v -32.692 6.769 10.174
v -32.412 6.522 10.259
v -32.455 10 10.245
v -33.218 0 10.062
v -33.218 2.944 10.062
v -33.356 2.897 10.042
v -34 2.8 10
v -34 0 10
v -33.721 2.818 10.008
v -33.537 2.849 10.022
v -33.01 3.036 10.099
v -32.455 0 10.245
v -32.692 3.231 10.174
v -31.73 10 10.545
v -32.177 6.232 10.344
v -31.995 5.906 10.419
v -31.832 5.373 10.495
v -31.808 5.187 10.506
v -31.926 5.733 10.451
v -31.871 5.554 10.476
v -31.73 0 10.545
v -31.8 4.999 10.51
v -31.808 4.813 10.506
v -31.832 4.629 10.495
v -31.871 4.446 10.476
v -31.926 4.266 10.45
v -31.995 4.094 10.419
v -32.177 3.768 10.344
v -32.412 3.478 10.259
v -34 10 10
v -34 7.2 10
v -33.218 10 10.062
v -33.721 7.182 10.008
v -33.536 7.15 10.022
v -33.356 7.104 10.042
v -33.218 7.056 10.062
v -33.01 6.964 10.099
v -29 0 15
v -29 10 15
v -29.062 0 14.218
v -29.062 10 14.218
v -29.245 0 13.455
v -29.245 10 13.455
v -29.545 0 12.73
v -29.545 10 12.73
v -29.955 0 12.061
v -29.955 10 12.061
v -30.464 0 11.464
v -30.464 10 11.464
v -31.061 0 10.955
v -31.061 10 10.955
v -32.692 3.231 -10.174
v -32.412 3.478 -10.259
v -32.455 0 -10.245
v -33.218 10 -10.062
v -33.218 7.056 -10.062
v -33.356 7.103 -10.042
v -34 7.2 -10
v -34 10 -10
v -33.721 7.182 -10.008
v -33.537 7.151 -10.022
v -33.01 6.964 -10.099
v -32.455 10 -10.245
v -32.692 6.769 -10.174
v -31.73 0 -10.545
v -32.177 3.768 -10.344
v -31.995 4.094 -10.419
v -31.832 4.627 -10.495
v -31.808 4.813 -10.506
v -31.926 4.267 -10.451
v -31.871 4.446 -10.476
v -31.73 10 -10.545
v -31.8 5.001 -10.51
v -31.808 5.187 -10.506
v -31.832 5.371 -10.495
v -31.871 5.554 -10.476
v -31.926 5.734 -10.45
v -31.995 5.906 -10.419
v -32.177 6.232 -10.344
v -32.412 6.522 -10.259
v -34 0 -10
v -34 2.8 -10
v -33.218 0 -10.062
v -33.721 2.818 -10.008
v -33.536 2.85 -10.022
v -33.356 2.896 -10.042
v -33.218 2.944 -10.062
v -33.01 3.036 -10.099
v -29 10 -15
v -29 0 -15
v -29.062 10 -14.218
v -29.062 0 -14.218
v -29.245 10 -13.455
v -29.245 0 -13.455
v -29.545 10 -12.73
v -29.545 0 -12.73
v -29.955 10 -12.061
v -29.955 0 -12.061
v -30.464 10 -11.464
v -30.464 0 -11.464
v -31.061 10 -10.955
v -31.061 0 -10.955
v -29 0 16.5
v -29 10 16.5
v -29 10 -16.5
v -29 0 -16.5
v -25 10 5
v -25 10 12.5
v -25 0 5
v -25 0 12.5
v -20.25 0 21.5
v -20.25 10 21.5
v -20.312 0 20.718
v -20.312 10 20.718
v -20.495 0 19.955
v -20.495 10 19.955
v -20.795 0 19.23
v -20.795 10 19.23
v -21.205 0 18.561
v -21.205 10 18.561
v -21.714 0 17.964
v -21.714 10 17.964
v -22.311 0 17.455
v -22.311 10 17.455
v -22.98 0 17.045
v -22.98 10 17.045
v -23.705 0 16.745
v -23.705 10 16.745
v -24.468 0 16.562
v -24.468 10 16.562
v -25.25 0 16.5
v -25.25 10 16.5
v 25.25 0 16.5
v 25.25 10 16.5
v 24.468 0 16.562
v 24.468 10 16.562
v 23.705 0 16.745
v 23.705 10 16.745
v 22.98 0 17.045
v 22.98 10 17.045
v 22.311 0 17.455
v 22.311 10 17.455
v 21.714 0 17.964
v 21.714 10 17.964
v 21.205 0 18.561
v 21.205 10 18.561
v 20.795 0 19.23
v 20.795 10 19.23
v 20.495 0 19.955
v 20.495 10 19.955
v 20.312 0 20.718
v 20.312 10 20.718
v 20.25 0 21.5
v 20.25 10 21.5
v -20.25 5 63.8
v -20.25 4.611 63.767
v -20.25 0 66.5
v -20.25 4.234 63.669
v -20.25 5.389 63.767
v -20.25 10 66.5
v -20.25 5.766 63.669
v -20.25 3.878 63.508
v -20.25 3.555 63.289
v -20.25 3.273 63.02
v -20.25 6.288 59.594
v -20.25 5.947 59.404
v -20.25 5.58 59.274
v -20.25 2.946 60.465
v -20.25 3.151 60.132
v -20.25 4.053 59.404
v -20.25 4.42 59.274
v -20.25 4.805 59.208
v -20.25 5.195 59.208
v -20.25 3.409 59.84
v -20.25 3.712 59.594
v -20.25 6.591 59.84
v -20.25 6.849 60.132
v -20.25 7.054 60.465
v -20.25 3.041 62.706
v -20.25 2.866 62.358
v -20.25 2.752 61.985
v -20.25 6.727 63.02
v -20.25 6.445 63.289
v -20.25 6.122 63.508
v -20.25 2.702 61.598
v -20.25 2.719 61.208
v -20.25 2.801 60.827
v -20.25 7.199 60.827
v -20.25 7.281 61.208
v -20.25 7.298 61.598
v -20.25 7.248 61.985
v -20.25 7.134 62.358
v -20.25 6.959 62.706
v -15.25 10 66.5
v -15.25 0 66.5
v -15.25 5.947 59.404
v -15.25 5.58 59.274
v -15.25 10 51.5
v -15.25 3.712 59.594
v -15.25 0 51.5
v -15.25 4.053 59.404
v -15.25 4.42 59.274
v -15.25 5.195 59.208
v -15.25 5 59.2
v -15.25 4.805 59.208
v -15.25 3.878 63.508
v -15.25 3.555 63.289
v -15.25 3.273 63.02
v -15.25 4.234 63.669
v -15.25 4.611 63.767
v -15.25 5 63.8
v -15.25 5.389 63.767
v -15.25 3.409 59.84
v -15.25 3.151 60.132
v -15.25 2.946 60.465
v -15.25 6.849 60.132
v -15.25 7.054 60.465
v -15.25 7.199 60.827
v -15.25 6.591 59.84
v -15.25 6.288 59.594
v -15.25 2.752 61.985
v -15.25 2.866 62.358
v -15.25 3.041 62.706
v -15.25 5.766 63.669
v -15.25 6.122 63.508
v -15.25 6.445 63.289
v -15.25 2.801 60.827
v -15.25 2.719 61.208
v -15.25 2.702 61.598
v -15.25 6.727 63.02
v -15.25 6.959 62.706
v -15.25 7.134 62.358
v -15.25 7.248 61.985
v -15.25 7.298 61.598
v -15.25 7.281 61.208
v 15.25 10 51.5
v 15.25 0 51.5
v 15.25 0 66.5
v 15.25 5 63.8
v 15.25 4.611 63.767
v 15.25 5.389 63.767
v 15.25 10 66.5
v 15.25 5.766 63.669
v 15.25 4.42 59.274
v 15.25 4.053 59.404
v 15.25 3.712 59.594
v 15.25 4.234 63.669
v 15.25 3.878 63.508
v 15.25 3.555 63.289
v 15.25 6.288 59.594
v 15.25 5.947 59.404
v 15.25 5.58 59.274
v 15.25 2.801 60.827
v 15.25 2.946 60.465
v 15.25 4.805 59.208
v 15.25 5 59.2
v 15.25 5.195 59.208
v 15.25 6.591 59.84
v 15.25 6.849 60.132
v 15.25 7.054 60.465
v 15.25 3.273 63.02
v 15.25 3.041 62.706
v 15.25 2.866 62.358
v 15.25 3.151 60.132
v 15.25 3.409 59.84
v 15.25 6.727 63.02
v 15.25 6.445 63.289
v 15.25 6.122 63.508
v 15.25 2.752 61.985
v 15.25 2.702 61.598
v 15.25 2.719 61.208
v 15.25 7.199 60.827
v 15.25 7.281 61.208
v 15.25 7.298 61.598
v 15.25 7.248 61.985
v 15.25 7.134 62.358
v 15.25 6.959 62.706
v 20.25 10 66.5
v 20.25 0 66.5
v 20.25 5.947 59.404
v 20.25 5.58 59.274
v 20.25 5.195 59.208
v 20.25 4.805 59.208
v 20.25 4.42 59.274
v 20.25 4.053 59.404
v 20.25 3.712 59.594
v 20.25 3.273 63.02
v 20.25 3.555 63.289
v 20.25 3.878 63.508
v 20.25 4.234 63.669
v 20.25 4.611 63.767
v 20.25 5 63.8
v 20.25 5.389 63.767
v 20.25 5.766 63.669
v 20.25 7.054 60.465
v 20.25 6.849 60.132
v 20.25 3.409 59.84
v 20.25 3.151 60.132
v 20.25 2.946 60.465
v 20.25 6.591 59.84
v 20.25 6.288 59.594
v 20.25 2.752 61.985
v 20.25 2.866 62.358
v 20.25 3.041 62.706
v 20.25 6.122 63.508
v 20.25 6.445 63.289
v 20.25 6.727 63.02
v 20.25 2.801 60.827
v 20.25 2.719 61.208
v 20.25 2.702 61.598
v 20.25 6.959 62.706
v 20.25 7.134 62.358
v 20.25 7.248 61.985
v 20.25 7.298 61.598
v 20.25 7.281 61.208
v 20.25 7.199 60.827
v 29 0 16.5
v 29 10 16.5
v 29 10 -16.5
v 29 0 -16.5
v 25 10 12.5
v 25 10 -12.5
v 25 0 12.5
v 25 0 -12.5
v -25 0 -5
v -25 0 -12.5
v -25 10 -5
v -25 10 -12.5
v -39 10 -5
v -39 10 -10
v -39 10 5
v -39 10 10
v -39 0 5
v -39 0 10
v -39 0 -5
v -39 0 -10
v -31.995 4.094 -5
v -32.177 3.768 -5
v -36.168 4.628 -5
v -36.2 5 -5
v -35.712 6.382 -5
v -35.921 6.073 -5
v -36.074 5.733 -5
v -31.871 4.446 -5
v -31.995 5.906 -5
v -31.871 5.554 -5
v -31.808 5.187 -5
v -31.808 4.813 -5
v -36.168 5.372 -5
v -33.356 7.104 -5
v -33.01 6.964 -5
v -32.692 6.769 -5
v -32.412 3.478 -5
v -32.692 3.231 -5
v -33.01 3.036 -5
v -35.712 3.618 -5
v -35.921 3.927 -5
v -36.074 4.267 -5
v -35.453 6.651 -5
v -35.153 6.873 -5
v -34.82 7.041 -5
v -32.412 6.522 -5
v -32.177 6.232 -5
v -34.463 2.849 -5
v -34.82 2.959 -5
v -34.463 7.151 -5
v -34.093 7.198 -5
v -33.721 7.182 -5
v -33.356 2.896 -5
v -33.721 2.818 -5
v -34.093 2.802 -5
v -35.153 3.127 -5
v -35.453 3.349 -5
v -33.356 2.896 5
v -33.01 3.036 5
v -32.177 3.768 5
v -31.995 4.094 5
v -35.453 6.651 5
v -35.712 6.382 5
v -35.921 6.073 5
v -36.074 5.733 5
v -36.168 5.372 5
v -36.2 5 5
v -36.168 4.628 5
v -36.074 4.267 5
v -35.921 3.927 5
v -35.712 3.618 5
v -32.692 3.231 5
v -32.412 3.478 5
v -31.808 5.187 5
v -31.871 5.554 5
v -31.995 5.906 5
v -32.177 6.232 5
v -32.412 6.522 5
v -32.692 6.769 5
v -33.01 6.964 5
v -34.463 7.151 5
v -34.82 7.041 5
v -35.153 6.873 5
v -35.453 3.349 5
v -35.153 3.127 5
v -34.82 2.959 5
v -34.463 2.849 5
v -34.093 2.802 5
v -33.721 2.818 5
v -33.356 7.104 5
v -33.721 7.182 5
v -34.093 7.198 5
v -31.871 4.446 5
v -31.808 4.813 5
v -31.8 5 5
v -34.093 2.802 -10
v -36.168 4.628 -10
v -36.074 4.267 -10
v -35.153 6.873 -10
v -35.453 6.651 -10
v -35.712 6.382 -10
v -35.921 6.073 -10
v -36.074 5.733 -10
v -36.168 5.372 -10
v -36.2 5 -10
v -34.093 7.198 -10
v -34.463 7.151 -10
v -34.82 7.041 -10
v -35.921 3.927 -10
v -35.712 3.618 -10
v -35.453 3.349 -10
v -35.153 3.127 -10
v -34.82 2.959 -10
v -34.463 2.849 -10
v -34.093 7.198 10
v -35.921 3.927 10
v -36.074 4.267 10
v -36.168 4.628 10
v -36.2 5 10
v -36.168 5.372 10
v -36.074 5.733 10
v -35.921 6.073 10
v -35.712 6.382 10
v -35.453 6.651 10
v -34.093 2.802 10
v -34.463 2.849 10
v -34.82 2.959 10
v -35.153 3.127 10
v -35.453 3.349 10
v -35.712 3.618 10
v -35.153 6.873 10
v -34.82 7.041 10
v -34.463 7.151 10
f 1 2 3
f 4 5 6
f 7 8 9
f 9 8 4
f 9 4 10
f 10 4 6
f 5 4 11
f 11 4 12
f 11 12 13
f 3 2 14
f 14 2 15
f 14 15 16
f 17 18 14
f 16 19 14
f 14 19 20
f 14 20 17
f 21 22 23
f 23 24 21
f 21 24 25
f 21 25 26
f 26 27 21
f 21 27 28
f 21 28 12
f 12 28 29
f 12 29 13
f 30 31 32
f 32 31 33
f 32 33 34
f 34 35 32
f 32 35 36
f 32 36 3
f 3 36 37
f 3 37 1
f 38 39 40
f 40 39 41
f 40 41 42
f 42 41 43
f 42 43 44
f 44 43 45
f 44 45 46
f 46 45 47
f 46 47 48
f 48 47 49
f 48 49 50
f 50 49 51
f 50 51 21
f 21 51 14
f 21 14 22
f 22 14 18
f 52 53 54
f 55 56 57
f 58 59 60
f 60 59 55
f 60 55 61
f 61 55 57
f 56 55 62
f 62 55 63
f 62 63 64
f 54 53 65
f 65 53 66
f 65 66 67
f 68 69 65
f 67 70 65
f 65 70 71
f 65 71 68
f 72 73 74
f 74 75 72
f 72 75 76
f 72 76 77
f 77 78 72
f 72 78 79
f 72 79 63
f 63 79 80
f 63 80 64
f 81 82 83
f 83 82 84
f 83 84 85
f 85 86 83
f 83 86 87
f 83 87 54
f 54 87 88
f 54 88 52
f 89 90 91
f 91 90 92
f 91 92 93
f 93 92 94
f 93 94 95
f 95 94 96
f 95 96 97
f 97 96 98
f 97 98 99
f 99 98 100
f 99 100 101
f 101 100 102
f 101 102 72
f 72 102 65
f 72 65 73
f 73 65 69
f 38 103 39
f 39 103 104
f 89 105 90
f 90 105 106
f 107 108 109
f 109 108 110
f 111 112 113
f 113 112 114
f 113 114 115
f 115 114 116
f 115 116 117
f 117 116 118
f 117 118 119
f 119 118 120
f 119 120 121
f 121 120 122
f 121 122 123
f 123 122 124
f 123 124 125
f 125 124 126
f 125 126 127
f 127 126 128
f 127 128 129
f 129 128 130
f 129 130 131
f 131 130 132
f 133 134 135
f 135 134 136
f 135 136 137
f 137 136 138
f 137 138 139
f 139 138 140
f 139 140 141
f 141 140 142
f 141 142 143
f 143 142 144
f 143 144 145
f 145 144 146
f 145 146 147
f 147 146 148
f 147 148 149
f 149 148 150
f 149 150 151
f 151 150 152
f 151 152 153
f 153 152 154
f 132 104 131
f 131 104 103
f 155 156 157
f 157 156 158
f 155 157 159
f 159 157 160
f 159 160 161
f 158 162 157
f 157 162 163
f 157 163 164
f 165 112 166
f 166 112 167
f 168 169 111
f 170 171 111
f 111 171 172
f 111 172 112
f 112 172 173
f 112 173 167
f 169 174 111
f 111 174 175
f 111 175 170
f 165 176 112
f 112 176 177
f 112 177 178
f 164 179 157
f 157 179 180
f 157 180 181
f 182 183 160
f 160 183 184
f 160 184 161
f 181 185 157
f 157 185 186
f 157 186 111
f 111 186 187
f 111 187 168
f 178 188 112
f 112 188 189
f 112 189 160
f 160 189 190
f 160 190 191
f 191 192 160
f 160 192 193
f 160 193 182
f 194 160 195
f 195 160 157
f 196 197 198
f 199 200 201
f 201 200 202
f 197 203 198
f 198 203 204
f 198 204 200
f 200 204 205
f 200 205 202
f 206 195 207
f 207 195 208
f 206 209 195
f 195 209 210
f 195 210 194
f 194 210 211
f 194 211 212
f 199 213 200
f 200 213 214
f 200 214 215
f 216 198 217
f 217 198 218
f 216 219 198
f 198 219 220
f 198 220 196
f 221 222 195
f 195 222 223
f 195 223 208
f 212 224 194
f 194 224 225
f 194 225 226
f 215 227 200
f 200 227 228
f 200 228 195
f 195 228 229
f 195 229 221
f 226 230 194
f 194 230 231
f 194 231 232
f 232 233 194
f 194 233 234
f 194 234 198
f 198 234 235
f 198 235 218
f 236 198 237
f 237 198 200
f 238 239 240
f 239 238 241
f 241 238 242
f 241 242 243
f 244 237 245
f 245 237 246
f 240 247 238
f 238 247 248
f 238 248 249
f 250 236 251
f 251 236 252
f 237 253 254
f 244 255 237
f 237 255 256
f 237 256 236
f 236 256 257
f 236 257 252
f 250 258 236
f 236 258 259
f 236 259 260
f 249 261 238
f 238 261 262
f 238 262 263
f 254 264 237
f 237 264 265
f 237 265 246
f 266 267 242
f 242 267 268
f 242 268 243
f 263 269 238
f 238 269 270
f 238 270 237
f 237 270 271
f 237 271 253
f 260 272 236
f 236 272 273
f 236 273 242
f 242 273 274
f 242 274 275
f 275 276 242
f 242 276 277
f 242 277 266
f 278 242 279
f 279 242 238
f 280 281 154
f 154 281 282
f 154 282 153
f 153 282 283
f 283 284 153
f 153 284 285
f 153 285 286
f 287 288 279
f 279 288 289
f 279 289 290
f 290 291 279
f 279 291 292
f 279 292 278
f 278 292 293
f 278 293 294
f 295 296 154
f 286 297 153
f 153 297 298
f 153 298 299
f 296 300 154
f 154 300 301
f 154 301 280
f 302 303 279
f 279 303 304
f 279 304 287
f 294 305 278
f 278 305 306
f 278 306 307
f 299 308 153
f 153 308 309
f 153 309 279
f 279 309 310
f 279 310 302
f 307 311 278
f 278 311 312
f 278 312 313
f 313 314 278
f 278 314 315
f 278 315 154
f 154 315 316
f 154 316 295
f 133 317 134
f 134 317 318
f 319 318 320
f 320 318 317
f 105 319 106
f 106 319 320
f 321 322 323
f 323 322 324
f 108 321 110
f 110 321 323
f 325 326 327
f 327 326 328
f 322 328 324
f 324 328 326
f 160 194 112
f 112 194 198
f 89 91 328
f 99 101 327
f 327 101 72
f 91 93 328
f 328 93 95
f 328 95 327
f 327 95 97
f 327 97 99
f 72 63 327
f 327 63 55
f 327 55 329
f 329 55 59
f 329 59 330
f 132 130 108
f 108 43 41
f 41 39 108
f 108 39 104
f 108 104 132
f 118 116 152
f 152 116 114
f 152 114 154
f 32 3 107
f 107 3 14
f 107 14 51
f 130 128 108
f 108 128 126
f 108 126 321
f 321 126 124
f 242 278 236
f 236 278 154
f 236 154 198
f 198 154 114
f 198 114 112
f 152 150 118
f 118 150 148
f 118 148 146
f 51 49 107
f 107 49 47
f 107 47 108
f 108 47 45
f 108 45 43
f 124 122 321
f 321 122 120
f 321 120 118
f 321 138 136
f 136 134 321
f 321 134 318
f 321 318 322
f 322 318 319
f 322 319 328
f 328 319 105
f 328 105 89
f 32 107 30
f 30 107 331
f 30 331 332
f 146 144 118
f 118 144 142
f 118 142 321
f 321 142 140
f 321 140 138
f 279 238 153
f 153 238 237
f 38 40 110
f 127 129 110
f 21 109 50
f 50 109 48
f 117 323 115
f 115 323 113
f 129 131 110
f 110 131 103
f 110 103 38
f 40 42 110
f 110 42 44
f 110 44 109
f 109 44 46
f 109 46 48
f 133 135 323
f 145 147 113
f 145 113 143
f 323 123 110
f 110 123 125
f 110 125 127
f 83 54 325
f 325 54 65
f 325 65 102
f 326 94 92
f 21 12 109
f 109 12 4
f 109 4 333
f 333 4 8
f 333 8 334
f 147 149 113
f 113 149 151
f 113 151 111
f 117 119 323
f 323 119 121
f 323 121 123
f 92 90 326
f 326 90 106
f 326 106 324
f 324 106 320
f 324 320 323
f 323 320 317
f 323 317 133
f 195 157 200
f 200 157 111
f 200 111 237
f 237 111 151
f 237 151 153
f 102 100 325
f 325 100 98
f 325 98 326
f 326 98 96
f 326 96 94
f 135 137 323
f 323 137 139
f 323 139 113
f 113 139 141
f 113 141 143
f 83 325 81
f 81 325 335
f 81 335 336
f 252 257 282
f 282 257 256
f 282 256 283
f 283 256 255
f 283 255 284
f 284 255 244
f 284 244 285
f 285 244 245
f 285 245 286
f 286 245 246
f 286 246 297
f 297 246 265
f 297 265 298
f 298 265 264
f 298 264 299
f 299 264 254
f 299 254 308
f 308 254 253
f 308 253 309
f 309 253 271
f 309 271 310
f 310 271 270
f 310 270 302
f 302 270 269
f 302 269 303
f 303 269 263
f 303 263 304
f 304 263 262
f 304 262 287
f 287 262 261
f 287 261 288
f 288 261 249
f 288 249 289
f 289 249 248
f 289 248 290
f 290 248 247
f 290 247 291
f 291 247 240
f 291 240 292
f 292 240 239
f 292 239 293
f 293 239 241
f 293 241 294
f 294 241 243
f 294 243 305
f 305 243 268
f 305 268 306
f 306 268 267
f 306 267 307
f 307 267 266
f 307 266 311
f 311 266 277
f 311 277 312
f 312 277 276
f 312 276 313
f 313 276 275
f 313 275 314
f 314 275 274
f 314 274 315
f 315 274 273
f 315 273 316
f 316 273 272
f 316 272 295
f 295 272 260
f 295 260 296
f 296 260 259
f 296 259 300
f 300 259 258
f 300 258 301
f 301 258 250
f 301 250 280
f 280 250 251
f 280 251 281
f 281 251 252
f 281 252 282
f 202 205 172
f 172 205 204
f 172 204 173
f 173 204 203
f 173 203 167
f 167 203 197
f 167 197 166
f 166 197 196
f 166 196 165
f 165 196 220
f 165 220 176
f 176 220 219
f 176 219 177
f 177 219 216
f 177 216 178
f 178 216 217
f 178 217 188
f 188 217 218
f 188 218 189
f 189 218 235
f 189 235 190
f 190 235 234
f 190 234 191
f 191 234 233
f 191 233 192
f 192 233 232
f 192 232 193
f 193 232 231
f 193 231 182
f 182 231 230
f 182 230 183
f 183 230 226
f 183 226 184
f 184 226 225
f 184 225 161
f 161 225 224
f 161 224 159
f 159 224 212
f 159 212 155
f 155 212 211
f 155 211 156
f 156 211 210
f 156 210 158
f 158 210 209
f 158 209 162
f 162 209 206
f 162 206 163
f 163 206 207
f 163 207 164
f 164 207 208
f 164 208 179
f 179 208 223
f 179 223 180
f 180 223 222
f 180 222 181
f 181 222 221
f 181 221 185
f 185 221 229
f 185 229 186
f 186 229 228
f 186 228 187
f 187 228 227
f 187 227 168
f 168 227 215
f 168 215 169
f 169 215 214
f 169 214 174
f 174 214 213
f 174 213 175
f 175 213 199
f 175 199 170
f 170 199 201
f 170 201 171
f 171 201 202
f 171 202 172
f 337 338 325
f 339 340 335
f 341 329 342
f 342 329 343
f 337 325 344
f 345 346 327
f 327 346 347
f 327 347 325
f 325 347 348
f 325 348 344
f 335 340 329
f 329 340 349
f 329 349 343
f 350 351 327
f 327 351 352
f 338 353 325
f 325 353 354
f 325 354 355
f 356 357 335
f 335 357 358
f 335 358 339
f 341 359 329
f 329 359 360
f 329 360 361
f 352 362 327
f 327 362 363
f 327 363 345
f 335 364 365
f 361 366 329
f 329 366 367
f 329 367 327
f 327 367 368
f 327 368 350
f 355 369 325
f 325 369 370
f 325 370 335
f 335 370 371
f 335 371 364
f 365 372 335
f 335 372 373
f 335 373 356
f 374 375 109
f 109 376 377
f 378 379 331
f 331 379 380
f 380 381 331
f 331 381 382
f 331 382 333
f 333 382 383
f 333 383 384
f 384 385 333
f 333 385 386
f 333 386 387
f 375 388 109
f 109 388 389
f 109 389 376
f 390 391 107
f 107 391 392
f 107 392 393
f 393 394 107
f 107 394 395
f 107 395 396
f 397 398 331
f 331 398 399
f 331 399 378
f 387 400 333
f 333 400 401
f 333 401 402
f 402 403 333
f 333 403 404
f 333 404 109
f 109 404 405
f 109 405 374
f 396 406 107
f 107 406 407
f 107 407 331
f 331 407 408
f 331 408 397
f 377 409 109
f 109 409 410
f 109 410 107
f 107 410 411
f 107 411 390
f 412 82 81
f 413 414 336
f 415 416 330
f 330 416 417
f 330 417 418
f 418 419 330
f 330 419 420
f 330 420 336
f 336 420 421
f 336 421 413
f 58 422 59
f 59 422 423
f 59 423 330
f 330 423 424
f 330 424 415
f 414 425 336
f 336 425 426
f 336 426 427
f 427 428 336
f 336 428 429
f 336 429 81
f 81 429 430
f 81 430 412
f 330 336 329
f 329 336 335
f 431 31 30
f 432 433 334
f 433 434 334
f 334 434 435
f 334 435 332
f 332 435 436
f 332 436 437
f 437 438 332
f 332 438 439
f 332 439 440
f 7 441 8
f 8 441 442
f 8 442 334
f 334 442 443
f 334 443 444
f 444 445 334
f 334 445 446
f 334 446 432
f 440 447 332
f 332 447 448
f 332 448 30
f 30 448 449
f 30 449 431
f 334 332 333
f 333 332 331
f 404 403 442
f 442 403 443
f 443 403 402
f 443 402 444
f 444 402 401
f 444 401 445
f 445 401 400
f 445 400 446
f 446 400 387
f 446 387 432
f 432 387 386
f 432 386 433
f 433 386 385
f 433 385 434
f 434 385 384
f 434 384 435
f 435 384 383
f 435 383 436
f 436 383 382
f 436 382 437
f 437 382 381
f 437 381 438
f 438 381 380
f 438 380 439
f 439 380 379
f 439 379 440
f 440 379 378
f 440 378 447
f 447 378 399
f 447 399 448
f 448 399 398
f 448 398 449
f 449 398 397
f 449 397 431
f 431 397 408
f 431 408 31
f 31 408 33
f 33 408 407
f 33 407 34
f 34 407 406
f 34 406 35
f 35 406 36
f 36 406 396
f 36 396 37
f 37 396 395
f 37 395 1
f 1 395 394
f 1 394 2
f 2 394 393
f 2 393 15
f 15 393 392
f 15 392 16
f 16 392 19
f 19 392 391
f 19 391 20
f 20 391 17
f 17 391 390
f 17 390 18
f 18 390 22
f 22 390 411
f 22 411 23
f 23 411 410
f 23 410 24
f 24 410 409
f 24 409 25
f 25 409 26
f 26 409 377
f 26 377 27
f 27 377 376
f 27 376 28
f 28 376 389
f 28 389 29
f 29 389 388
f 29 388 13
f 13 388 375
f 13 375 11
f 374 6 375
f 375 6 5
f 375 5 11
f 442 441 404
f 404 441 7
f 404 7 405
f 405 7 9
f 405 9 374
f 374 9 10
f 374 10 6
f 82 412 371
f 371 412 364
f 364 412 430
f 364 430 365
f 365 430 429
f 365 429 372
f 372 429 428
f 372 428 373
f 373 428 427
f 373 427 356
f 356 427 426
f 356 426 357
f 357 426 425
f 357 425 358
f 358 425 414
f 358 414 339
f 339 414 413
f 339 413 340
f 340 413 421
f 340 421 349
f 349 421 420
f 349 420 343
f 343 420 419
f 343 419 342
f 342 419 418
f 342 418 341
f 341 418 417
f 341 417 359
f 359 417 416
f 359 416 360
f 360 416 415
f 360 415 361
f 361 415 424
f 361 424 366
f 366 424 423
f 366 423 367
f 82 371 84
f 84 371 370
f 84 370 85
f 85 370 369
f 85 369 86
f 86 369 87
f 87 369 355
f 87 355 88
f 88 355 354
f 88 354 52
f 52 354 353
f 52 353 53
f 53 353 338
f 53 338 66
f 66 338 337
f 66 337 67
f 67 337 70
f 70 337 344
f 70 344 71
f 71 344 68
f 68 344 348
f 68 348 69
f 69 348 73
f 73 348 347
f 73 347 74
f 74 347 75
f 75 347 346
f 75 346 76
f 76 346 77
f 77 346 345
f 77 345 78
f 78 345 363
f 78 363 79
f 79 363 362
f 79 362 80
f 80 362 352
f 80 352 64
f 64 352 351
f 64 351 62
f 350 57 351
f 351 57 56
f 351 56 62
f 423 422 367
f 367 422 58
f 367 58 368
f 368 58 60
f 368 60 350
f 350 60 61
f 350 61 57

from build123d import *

# Parameters (mm, degrees)
CROQUIS1_W                 = 58
CROQUIS1_H                 = 33
CROQUIS1_W_2               = 50
CROQUIS1_H_2               = 25
SALIENTE_EXTRUIR1_DEPTH    = 10
REDONDEO1_R                = 5
REDONDEO2_R                = 5
CROQUIS2_R                 = 2.3
CORTAR_EXTRUIR1_DEPTH      = 52
CROQUIS3_W                 = 4
CROQUIS3_H                 = 10
CORTAR_EXTRUIR2_DEPTH      = 20
CROQUIS4_W                 = 5
CROQUIS4_H                 = 10
SALIENTE_EXTRUIR2_DEPTH    = 10
REDONDEO3_R                = 5
REDONDEO4_R                = 5
CORTAR_EXTRUIR4_DEPTH      = 27
CORTAR_EXTRUIR4_DEPTH_BACK = 27
CROQUIS5_R                 = 2.2


with BuildPart() as part:
    # Croquis1 → Saliente-Extruir1 (new body)
    # profile 1 of 2: a face of its own
    with BuildSketch(Plane(origin=(0, 0, 0), x_dir=(1, 0, 0), z_dir=(0, 1, 0))):
        Rectangle(CROQUIS1_W, CROQUIS1_H)
        Rectangle(CROQUIS1_W_2, CROQUIS1_H_2, mode=Mode.SUBTRACT)
    # profile 2 of 2: a face of its own
    with BuildSketch(Plane(origin=(0, 0, 0), x_dir=(1, 0, 0), z_dir=(0, 1, 0))):
        Polygon((20.25, -16.5), (-20.25, -16.5), (-20.25, -66.5), (-15.25, -66.5), (-15.25, -51.5), (15.25, -51.5), (15.25, -66.5), (20.25, -66.5), align=None)
    extrude(amount=SALIENTE_EXTRUIR1_DEPTH)

    # Redondeo1
    redondeo1_edges = [part.edges().sort_by_distance(p)[0] for p in [
        (20.25, 5, 16.5),
    ]]
    fillet(redondeo1_edges, radius=REDONDEO1_R)

    # Redondeo2
    redondeo2_edges = [part.edges().sort_by_distance(p)[0] for p in [
        (-20.25, 5, 16.5),
    ]]
    fillet(redondeo2_edges, radius=REDONDEO2_R)

    # Croquis2 → Cortar-Extruir1 (cut)
    with BuildSketch(Plane.ZY.offset(20.25)):
        with Locations((61.5, 5)):
            Circle(CROQUIS2_R)
    extrude(amount=-CORTAR_EXTRUIR1_DEPTH, mode=Mode.SUBTRACT)

    # Croquis3 → Cortar-Extruir2 (cut)
    with BuildSketch(Plane.XZ):
        with Locations((-27, 0)):
            Rectangle(CROQUIS3_W, CROQUIS3_H)
    extrude(amount=-CORTAR_EXTRUIR2_DEPTH, mode=Mode.SUBTRACT)

    # Croquis4 → Saliente-Extruir2 (add)
    with BuildSketch(Plane.ZY.offset(29)):
        with Locations((-7.5, 5)):
            Rectangle(CROQUIS4_W, CROQUIS4_H)
        with Locations((7.5, 5)):
            Rectangle(CROQUIS4_W, CROQUIS4_H)
    extrude(amount=SALIENTE_EXTRUIR2_DEPTH)

    # Redondeo3
    redondeo3_edges = [part.edges().sort_by_distance(p)[0] for p in [
        (-29, 5, -10),
    ]]
    fillet(redondeo3_edges, radius=REDONDEO3_R)

    # Redondeo4
    redondeo4_edges = [part.edges().sort_by_distance(p)[0] for p in [
        (-29, 5, 10),
    ]]
    fillet(redondeo4_edges, radius=REDONDEO4_R)

    # Croquis5 → Cortar-Extruir4 (cut, two sides: drawn at the far end of the back side and taken through both)
    with BuildSketch(Plane.XY.offset(10).offset(-CORTAR_EXTRUIR4_DEPTH_BACK)):
        with Locations(Location((-34, 5, 0), (0, 0, 90))):
            Circle(CROQUIS5_R)
    extrude(amount=CORTAR_EXTRUIR4_DEPTH + CORTAR_EXTRUIR4_DEPTH_BACK, mode=Mode.SUBTRACT)


solid = part.part
